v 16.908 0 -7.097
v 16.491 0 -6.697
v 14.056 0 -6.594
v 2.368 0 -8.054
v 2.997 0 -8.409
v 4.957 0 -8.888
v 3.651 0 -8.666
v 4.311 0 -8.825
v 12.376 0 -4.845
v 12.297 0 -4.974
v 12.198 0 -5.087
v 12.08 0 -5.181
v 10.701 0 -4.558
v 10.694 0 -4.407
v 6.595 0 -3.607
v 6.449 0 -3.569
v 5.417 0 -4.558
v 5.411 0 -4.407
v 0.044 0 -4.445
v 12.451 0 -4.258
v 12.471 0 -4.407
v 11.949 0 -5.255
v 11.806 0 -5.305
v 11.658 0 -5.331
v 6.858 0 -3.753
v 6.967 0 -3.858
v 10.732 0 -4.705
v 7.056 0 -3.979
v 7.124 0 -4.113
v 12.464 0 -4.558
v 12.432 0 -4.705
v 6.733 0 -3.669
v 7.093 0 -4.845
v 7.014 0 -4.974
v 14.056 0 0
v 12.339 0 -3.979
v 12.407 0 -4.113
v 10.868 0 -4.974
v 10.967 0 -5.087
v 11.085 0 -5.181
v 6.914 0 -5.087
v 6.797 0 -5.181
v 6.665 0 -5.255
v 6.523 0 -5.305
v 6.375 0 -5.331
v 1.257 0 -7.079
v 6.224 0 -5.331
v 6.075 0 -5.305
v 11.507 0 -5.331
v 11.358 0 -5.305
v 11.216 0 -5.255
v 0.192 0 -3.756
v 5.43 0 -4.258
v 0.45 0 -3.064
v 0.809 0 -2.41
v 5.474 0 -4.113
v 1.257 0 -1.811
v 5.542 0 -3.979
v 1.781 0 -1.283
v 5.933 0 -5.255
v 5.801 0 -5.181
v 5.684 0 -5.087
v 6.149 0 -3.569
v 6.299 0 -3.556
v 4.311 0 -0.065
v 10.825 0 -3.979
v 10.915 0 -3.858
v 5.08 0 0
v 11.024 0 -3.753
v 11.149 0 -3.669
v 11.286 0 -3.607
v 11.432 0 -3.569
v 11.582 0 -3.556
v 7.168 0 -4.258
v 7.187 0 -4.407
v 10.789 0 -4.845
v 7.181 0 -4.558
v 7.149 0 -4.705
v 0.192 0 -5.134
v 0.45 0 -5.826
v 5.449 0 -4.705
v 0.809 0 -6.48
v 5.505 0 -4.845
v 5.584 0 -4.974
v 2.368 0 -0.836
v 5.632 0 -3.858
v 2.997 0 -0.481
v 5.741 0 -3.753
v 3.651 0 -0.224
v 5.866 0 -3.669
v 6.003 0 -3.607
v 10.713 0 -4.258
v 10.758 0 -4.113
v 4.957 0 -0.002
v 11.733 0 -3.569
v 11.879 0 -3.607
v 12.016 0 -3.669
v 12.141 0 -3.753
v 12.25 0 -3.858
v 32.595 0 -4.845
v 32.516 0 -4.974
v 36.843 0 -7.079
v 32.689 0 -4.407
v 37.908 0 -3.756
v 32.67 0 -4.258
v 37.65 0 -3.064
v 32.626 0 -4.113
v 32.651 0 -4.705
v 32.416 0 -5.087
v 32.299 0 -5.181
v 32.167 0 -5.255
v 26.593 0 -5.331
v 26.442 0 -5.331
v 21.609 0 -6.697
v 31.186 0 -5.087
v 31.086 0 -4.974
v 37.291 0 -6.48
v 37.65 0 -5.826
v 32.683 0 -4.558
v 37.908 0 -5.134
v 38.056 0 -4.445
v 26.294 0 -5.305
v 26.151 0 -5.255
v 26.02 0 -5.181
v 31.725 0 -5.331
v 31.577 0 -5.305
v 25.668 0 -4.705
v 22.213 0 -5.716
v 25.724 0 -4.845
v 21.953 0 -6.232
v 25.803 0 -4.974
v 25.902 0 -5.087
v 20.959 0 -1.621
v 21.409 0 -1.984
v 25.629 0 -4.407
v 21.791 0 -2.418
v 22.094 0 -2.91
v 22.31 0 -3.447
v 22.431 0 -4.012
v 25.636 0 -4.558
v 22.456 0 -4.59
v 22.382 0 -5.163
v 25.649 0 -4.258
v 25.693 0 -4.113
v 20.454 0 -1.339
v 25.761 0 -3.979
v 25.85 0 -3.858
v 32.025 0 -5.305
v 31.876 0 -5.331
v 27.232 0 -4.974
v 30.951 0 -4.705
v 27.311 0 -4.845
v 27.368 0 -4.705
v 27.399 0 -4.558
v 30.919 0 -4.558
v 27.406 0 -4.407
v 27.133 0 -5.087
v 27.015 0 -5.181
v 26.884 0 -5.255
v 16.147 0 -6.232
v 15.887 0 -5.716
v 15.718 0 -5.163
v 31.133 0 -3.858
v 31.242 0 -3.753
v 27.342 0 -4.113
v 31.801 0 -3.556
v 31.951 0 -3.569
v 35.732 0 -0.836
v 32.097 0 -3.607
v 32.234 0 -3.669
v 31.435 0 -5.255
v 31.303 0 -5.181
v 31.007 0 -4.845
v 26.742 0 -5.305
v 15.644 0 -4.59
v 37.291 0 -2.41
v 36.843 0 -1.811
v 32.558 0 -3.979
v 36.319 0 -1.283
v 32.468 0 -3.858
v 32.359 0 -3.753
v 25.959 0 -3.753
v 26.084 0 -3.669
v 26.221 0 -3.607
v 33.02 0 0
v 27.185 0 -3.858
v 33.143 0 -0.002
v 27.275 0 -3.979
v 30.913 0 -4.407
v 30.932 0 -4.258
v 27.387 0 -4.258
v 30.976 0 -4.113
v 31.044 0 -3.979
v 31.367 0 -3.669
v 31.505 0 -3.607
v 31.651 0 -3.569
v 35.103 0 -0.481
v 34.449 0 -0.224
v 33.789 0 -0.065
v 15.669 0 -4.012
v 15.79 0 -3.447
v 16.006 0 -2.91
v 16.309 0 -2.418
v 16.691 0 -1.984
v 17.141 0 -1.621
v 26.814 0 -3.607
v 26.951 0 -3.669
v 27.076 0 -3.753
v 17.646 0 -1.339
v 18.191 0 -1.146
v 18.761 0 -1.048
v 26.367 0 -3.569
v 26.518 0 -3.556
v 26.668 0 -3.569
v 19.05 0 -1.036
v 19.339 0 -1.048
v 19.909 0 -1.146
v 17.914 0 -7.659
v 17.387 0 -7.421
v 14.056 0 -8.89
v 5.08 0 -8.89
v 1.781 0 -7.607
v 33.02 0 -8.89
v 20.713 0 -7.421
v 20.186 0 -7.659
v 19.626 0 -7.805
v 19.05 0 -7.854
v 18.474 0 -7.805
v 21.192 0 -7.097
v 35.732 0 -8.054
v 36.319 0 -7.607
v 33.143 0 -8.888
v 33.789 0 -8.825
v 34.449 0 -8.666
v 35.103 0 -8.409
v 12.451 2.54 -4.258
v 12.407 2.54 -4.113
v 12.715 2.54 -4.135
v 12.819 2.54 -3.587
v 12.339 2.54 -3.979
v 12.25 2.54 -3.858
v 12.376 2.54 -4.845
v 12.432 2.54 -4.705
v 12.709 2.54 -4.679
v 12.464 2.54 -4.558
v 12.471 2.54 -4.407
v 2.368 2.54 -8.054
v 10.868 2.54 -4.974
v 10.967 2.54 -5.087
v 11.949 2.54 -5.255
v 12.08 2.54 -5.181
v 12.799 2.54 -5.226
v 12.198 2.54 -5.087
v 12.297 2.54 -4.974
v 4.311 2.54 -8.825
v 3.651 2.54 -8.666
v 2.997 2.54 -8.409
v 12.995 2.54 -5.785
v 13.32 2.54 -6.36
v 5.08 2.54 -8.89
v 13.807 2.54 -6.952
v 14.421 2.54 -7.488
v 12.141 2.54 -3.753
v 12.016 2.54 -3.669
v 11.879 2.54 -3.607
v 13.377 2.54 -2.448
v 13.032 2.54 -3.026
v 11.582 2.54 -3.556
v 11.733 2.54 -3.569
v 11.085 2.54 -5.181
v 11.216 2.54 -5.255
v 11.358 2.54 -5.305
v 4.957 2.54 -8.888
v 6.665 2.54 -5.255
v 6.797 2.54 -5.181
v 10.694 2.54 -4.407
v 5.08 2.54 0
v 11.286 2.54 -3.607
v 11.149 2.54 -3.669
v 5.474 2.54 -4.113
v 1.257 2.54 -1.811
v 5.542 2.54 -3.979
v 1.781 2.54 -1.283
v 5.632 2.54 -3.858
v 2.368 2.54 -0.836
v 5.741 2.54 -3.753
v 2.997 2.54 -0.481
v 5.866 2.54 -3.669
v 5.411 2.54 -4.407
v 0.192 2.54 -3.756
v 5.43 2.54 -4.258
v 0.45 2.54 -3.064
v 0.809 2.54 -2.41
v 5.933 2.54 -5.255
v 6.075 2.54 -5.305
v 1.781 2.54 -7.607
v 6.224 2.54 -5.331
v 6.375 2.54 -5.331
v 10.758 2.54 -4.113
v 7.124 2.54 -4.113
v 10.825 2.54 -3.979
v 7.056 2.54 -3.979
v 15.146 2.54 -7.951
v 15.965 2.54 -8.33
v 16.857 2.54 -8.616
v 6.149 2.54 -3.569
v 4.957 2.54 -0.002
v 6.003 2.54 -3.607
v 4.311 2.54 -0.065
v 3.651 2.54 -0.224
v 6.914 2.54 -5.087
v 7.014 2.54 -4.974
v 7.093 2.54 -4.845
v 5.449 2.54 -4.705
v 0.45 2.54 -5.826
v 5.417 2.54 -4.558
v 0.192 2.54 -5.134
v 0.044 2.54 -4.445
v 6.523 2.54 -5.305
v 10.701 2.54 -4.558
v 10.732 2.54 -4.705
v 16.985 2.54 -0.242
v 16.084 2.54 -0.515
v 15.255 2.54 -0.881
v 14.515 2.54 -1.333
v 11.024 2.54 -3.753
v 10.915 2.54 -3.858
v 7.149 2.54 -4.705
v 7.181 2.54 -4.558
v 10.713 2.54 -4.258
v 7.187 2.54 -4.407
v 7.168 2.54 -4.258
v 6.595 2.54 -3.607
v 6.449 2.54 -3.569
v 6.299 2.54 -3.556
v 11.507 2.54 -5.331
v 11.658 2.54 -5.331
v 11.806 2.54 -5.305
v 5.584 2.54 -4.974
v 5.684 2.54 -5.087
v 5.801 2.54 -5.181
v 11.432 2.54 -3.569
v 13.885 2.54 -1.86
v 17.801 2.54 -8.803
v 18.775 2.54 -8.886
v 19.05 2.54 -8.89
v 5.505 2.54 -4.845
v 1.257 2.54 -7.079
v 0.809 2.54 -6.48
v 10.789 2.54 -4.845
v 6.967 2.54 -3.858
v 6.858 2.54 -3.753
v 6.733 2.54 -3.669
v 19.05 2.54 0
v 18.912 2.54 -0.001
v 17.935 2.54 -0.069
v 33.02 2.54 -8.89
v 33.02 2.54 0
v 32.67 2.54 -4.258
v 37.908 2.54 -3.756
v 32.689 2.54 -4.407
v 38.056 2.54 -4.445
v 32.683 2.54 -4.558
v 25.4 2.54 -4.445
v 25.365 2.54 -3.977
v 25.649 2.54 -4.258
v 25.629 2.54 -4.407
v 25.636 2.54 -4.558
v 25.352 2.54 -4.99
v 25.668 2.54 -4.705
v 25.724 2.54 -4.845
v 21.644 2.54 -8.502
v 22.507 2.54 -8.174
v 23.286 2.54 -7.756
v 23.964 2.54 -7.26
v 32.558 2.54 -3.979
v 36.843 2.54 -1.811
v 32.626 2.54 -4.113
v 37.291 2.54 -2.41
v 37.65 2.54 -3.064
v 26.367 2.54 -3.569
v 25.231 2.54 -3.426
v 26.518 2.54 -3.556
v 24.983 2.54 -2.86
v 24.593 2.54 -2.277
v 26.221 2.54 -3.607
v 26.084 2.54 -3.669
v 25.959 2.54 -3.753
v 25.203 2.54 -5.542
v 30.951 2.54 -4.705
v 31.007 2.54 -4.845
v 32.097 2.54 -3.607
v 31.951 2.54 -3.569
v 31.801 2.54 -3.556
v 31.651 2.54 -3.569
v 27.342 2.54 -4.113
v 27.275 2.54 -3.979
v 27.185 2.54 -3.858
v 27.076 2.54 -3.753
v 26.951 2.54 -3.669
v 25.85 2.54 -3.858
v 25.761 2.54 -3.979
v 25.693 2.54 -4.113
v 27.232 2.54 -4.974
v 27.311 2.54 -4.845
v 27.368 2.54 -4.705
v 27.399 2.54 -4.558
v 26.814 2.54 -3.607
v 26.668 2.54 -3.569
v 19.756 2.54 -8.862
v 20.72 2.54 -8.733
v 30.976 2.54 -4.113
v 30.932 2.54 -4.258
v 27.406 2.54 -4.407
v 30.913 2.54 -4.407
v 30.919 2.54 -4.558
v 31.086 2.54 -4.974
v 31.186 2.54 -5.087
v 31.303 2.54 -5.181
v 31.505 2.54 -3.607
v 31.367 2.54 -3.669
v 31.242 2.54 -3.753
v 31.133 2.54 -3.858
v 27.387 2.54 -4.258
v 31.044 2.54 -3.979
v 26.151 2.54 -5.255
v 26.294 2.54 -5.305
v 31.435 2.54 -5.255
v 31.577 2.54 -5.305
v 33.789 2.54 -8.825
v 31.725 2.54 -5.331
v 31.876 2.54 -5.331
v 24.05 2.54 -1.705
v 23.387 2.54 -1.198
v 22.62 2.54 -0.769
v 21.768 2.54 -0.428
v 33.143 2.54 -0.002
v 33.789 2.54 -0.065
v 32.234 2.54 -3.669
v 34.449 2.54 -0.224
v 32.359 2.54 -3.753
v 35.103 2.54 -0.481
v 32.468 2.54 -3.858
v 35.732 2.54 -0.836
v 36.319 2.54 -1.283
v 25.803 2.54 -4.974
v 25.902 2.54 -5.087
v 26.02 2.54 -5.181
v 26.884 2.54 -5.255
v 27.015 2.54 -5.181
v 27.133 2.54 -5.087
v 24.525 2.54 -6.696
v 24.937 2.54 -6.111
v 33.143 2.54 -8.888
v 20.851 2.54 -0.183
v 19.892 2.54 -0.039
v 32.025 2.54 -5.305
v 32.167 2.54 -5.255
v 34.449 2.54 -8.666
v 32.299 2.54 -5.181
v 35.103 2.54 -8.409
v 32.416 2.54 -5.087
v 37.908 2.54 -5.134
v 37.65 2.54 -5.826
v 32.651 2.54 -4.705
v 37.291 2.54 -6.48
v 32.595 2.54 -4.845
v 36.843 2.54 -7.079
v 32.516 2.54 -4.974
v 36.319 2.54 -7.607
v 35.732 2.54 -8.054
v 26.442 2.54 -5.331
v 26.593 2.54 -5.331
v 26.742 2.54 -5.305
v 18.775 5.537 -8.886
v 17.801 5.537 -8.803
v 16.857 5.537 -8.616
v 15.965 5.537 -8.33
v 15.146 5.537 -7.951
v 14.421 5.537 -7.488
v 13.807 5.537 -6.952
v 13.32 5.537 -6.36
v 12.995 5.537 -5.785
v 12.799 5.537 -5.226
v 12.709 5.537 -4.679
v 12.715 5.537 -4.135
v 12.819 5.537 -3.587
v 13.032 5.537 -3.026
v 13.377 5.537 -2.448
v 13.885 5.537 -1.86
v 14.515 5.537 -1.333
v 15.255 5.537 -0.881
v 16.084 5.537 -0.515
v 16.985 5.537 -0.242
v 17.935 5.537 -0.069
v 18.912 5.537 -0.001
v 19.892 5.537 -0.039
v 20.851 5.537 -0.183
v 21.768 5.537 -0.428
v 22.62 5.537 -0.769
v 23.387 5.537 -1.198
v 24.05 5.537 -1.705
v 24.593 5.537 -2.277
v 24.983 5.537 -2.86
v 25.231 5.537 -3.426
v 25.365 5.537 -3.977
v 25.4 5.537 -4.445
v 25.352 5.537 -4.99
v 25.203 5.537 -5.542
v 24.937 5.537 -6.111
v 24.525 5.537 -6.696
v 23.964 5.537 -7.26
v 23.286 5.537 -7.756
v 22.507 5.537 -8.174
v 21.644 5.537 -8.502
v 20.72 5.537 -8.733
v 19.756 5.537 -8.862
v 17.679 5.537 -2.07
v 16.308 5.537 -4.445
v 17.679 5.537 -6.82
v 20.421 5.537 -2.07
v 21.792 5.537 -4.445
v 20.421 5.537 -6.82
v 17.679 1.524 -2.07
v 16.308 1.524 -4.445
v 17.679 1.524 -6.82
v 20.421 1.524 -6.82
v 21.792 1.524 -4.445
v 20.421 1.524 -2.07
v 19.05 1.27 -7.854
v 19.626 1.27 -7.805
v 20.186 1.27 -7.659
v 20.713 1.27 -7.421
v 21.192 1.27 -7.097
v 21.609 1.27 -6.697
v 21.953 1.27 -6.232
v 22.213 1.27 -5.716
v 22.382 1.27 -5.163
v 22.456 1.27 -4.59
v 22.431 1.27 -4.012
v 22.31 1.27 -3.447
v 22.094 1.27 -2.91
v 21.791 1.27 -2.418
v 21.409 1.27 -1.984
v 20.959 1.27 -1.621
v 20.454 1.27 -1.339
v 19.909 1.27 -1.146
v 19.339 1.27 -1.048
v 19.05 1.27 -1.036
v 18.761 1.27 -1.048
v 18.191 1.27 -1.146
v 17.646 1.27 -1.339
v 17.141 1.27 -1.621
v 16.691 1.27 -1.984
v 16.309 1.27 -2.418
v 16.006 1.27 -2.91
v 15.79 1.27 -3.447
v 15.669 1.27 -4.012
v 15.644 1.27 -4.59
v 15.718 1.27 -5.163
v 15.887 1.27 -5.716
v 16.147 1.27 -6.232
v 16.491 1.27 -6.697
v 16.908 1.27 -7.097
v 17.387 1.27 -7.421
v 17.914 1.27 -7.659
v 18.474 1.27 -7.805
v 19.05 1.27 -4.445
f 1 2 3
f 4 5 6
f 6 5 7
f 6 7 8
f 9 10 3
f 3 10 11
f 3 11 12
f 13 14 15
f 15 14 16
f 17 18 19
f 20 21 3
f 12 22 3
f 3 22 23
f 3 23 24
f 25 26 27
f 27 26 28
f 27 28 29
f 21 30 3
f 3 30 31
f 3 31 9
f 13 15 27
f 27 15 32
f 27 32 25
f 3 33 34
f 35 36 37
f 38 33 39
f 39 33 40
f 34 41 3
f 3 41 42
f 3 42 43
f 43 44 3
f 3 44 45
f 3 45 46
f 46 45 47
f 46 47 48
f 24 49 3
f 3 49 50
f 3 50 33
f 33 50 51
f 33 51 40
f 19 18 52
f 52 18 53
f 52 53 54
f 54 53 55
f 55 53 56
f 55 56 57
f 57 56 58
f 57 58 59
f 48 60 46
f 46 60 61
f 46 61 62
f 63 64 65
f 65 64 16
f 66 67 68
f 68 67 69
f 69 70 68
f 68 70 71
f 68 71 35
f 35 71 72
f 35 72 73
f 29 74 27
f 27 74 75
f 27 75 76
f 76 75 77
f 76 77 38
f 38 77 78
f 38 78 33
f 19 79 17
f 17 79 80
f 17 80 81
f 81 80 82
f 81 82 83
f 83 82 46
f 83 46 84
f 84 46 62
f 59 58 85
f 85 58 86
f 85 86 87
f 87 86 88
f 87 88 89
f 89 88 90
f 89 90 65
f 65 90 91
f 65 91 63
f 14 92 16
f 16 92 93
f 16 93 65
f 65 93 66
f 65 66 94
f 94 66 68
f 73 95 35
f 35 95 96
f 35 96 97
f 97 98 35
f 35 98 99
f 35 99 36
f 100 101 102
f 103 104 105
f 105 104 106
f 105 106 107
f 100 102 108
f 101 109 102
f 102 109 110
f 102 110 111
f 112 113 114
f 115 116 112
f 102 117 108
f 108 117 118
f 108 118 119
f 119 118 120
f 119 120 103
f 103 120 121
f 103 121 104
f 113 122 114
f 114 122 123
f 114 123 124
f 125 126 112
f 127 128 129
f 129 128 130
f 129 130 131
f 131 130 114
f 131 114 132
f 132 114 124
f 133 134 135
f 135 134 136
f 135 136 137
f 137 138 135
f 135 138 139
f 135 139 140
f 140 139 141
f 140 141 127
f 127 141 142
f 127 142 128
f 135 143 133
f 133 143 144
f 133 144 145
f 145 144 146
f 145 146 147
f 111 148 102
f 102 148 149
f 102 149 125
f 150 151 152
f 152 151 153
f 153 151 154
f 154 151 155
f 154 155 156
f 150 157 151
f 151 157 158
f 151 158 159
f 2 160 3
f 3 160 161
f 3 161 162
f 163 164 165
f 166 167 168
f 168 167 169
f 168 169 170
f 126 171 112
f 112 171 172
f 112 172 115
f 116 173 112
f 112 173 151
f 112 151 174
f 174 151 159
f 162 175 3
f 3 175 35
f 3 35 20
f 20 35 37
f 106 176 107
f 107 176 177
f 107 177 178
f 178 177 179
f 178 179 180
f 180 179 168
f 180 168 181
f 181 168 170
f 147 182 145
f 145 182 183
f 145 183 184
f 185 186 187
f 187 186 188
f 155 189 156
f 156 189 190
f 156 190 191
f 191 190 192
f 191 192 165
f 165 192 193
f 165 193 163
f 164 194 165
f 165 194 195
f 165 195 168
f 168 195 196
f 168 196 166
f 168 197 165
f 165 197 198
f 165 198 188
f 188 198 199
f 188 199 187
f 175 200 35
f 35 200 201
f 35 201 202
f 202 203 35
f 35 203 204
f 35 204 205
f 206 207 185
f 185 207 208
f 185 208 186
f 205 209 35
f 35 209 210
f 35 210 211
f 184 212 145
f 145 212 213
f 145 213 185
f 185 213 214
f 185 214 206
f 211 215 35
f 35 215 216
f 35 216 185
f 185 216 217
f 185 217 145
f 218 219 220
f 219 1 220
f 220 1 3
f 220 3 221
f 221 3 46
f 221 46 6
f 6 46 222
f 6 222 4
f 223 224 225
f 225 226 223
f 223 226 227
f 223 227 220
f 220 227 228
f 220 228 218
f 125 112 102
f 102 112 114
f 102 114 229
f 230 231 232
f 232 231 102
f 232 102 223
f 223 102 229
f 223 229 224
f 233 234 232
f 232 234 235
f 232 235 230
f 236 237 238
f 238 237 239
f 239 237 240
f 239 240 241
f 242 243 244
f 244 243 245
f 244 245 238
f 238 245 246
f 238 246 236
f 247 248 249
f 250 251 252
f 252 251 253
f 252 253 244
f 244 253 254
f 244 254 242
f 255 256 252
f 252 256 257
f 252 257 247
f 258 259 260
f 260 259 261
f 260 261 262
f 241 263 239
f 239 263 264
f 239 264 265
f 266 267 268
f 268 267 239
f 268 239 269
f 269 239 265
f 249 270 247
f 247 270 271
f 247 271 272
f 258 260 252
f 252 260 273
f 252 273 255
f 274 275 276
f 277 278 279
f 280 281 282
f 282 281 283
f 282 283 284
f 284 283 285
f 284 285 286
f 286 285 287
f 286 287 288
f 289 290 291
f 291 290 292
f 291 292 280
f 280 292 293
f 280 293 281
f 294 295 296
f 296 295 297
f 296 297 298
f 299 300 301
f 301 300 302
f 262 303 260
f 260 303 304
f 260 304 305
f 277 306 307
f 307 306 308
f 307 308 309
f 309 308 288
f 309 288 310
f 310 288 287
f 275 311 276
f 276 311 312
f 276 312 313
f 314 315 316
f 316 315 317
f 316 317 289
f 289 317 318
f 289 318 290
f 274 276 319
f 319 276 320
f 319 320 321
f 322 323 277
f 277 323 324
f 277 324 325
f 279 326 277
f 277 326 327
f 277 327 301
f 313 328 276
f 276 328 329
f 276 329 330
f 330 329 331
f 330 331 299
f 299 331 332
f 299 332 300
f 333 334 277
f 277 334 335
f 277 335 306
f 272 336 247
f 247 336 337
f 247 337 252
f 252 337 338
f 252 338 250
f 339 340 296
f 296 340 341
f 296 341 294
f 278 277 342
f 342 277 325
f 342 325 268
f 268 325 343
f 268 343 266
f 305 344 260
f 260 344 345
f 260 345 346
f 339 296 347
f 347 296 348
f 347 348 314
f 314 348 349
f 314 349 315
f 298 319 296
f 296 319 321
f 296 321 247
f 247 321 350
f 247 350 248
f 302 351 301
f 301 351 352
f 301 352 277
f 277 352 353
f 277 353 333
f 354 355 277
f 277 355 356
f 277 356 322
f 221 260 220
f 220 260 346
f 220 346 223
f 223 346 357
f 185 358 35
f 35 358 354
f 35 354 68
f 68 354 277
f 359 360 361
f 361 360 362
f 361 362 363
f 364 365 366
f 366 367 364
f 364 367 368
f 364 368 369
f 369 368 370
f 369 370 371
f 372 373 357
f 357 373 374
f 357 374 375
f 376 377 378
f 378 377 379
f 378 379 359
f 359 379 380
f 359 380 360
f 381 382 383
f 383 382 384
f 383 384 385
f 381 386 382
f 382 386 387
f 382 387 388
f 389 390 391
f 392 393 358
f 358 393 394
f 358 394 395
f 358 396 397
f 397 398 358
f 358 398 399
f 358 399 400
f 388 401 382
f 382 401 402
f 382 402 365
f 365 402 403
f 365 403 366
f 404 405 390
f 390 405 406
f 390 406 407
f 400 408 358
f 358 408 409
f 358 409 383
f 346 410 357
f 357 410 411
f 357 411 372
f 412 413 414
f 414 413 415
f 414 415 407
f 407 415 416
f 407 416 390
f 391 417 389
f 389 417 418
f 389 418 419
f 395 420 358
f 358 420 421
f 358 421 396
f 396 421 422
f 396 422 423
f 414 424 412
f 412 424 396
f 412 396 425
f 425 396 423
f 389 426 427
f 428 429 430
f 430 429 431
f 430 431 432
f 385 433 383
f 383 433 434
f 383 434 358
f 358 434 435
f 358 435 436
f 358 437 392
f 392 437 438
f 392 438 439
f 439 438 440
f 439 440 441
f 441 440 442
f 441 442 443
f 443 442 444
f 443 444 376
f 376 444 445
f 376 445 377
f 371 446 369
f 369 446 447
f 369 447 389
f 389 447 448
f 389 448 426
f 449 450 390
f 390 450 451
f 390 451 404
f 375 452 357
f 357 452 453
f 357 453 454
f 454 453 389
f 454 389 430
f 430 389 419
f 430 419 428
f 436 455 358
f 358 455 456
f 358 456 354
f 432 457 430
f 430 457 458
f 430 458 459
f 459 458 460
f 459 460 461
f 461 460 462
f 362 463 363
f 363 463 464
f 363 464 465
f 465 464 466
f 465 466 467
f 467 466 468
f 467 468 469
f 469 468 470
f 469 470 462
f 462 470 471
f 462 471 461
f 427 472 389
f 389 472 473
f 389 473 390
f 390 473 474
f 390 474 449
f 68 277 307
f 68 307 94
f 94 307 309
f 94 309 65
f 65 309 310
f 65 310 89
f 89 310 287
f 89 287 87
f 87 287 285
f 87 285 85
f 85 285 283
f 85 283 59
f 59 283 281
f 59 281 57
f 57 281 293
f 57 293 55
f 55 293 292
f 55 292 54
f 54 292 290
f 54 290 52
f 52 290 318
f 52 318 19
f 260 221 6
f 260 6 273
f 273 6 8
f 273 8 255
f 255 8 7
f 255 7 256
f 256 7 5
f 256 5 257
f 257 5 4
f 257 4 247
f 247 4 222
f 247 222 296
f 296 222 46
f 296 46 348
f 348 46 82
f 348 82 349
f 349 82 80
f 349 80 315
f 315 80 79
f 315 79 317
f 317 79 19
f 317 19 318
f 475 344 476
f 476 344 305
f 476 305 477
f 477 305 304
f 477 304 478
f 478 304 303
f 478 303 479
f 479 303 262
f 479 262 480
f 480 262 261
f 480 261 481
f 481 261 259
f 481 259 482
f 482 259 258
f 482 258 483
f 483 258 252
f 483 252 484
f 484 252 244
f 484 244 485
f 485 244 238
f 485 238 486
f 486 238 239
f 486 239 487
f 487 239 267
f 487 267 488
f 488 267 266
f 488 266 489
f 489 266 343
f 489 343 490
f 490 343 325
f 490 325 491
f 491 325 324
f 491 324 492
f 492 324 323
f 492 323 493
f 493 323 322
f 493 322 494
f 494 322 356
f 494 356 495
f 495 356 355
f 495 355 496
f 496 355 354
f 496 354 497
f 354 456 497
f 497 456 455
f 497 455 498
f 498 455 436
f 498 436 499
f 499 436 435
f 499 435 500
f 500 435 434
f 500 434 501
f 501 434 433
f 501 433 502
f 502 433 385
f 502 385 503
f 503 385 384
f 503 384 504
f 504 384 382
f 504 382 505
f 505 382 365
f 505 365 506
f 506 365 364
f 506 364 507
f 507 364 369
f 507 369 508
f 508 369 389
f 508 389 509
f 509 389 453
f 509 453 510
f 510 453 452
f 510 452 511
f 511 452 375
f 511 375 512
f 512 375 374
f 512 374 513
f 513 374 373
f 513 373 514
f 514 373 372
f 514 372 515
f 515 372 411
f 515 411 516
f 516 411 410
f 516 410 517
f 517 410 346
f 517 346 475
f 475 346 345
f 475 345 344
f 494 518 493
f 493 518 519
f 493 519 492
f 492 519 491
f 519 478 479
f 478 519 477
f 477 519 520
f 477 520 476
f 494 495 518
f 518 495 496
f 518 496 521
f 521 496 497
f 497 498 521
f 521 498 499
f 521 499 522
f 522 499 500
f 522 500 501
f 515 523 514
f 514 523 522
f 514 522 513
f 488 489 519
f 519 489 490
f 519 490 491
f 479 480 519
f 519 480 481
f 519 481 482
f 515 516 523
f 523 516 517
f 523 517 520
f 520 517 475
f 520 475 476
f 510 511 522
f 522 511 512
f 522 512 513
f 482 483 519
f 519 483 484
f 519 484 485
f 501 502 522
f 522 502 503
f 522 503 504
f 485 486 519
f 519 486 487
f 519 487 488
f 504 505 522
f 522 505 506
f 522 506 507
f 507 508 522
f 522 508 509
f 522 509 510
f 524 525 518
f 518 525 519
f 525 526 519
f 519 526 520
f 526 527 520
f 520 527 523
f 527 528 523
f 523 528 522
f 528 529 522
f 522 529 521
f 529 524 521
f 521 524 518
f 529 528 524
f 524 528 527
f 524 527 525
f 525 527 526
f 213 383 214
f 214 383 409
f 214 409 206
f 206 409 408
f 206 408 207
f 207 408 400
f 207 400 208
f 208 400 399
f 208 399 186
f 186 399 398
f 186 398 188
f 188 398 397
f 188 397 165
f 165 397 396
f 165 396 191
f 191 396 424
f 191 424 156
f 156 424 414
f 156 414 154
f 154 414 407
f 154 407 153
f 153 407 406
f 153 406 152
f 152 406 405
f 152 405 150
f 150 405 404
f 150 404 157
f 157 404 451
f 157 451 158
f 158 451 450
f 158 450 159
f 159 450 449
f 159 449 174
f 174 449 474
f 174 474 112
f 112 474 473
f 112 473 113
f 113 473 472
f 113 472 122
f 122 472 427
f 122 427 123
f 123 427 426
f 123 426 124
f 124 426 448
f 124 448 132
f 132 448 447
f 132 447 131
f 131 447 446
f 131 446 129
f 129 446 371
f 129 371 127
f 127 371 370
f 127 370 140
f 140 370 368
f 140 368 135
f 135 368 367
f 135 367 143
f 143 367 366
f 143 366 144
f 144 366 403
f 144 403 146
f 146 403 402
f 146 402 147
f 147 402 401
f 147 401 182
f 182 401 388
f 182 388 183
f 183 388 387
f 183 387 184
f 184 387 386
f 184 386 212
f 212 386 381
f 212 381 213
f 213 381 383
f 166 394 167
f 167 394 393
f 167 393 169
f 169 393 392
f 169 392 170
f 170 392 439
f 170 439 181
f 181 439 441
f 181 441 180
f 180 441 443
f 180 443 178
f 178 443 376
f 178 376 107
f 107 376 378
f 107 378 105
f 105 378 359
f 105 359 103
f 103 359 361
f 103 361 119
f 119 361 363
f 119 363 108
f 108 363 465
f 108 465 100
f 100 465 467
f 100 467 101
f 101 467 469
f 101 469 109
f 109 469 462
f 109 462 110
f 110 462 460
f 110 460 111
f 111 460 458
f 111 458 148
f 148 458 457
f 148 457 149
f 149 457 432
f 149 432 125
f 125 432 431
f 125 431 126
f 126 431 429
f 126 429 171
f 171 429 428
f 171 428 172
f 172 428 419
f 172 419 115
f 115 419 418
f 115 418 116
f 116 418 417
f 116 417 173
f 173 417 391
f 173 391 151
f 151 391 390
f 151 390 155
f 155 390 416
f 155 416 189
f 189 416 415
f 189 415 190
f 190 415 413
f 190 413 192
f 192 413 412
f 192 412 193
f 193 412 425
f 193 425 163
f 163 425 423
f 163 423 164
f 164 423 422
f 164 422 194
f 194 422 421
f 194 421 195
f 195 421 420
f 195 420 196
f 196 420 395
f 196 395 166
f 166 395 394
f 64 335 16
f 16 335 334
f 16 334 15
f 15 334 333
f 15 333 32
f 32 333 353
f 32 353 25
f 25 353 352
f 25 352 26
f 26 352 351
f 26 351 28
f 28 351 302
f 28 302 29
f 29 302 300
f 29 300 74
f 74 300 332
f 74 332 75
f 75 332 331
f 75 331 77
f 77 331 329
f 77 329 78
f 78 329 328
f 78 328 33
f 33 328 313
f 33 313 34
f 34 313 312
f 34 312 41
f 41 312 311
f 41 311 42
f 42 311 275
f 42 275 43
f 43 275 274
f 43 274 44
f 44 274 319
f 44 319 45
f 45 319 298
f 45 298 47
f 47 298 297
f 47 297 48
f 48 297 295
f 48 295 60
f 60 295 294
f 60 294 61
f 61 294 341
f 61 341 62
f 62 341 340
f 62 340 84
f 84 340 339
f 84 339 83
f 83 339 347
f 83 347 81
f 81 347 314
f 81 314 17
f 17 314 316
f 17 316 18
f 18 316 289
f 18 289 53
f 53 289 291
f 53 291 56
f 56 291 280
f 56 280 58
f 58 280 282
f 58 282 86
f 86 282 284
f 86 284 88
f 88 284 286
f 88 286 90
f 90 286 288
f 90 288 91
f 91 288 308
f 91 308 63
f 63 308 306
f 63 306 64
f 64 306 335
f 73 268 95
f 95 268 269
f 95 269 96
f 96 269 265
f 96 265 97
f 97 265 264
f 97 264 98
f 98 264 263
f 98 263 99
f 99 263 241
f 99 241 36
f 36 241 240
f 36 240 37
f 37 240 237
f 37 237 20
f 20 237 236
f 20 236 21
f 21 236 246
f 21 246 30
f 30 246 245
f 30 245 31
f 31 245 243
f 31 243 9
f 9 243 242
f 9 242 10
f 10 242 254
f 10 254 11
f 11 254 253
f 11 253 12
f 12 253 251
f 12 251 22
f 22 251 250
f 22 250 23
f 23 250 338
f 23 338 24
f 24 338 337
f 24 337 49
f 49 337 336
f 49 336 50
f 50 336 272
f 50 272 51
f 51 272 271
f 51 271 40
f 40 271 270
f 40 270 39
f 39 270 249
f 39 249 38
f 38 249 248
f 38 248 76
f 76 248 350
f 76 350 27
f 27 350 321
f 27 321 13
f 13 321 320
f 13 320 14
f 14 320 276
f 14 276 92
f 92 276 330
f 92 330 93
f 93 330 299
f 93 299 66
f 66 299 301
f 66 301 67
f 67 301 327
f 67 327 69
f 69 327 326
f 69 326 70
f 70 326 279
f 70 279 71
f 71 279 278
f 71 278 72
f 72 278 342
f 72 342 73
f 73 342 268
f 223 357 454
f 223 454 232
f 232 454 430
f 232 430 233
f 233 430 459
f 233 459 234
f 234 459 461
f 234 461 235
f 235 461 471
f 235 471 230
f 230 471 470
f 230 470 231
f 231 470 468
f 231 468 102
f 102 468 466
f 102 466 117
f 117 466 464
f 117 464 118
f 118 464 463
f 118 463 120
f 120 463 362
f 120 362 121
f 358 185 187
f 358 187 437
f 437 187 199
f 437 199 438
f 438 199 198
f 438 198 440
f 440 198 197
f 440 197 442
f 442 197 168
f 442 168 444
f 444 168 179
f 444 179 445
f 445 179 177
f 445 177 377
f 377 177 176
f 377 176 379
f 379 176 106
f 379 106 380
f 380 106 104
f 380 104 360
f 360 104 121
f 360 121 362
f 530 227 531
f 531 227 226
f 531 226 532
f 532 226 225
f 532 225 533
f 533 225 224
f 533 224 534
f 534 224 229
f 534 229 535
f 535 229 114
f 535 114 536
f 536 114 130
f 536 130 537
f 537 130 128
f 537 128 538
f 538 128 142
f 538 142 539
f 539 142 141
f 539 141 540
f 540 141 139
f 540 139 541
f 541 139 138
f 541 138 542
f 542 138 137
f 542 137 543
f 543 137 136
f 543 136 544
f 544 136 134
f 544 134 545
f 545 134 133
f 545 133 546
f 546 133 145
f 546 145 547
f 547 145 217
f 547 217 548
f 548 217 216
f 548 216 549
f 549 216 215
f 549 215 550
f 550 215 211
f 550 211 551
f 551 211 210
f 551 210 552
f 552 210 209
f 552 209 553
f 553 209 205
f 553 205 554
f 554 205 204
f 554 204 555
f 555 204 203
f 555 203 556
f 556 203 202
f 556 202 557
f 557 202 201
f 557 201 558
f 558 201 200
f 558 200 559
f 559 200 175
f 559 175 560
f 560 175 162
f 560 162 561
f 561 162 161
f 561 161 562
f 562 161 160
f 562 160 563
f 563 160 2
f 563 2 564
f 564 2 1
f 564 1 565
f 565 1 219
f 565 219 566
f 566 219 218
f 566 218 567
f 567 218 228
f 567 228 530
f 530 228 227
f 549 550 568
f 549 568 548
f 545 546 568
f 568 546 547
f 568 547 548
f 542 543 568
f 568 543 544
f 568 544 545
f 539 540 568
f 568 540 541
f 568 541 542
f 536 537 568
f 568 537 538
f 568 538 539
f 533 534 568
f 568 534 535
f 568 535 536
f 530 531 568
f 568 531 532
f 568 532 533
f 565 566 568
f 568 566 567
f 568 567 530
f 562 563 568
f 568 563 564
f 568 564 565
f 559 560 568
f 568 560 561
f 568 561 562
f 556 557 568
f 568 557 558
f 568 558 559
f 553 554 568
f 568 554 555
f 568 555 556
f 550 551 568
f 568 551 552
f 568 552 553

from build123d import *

# Parameters (mm, degrees)
SKETCH1_W               = 38.1
SKETCH1_H               = 8.89
BOSS_EXTRUDE1_DEPTH     = 2.54
FILLET1_SIZE            = 5.08
BOSS_EXTRUDE2_START     = 0.508
SKETCH1_7_RX            = 6.35
SKETCH1_7_RY            = 4.445
BOSS_EXTRUDE2_DEPTH     = 5.0292
CUT_EXTRUDE2_DEPTH      = 40.51332301
CUT_EXTRUDE2_DEPTH_BACK = 5.08
CUT_EXTRUDE2_START      = 6.604
CUT_EXTRUDE3_START      = 1.778
SKETCH2_R               = 0.889
CUT_EXTRUDE3_DEPTH      = 5.08
FILLET2_SIZE            = 5.08
SKETCH6_R               = 3.408948418
CUT_EXTRUDE6_DEPTH      = 1.27
SKETCH2_AGAIN_R         = 0.889
CUT_EXTRUDE5_DEPTH      = 1.2


with BuildPart() as part:
    # Sketch1 → Boss-Extrude1 (new body)
    with BuildSketch(Plane(origin=(0, 0, 0), x_dir=(1, 0, 0), z_dir=(0, 1, 0))):
        with Locations((19.05, 4.445)):
            Rectangle(SKETCH1_W, SKETCH1_H)
        Polygon((20.421149154, 2.0701), (21.792298309, 4.445), (20.421149154, 6.8199), (17.678850846, 6.8199), (16.307701691, 4.445), (17.678850846, 2.0701), align=None, mode=Mode.SUBTRACT)
    extrude(amount=BOSS_EXTRUDE1_DEPTH)

    # Fillet1
    # a fillet whose section is not a circle: 5.08 mm, written as the material it takes off along each edge
    with BuildSketch(Plane(origin=(0, -12.7, -8.89), x_dir=(1, 0, 0), z_dir=(0, 1, 0))) as fillet1_piece_1:
        with BuildLine():
            Bezier((FILLET1_SIZE, 0), (0, 0), (0, -FILLET1_SIZE), weights=[1, 0.666666667, 1])
            Line((0, -FILLET1_SIZE), (0, 0))
            Line((0, 0), (FILLET1_SIZE, 0))
        make_face()
    extrude(amount=27.94, mode=Mode.SUBTRACT)
    with BuildSketch(Plane(origin=(0, -12.7, 0), x_dir=(1, 0, 0), z_dir=(0, 1, 0))) as fillet1_piece_2:
        with BuildLine():
            Bezier((FILLET1_SIZE, 0), (0, 0), (0, FILLET1_SIZE), weights=[1, 0.666666667, 1])
            Line((0, FILLET1_SIZE), (0, 0))
            Line((0, 0), (FILLET1_SIZE, 0))
        make_face()
    extrude(amount=27.94, mode=Mode.SUBTRACT)

    # Sketch1<7> → Boss-Extrude2 (add)
    with BuildSketch(Plane(origin=(0, 0, 0), x_dir=(1, 0, 0), z_dir=(0, 1, 0)).offset(BOSS_EXTRUDE2_START)):
        with Locations(Location((19.05, 4.445), (0, 0, 0))):
            Ellipse(SKETCH1_7_RX, SKETCH1_7_RY)
    extrude(amount=BOSS_EXTRUDE2_DEPTH)

    # Sketch1<8> → Cut-Extrude2 (cut, two sides: drawn at the far end of the back side and taken through both)
    with BuildSketch(Plane(origin=(0, 0, 0), x_dir=(1, 0, 0), z_dir=(0, 1, 0)).offset(CUT_EXTRUDE2_START - CUT_EXTRUDE2_DEPTH_BACK)):
        Polygon((20.421149154, 2.0701), (21.792298309, 4.445), (20.421149154, 6.8199), (17.678850846, 6.8199), (16.307701691, 4.445), (17.678850846, 2.0701), align=None)
    extrude(amount=CUT_EXTRUDE2_DEPTH + CUT_EXTRUDE2_DEPTH_BACK, mode=Mode.SUBTRACT)

    # Sketch2 → Cut-Extrude3 (cut)
    with BuildSketch(Plane(origin=(0, 2.54, 0), x_dir=(1, 0, 0), z_dir=(0, 1, 0)).offset(CUT_EXTRUDE3_START)):
        with Locations(Location((11.5824, 4.444938661, 0), (0, 0, 270))):
            Circle(SKETCH2_R)
        with Locations(Location((6.2992, 4.444938661, 0), (0, 0, 270))):
            Circle(SKETCH2_R)
        with Locations(Location((26.5176, 4.444938661, 0), (0, 0, 270))):
            Circle(SKETCH2_R)
        with Locations(Location((31.8008, 4.444938661, 0), (0, 0, 270))):
            Circle(SKETCH2_R)
    extrude(amount=-CUT_EXTRUDE3_DEPTH, mode=Mode.SUBTRACT)

    # Fillet2
    # a fillet whose section is not a circle: 5.08 mm, written as the material it takes off along each edge
    with BuildSketch(Plane(origin=(38.1, -12.7, 0), x_dir=(-1, 0, 0), z_dir=(0, 1, 0)), Plane(origin=(38.1, -12.7, -8.89), x_dir=(0, 0, 1), z_dir=(0, 1, 0))) as fillet2_piece_1:
        with BuildLine():
            Bezier((FILLET2_SIZE, 0), (0, 0), (0, -FILLET2_SIZE), weights=[1, 0.666666667, 1])
            Line((0, -FILLET2_SIZE), (0, 0))
            Line((0, 0), (FILLET2_SIZE, 0))
        make_face()
    extrude(amount=27.94, mode=Mode.SUBTRACT)

    # Sketch6 → Cut-Extrude6 (cut)
    with BuildSketch(Plane(origin=(0, 0, 0), x_dir=(1, 0, 0), z_dir=(0, 1, 0))):
        with Locations(Location((19.05, 4.445, 0), (0, 0, 270))):
            Circle(SKETCH6_R)
    extrude(amount=CUT_EXTRUDE6_DEPTH, mode=Mode.SUBTRACT)

    # Sketch2 again → Cut-Extrude5 (cut)
    with BuildSketch(Plane(origin=(0, 2.54, 0), x_dir=(1, 0, 0), z_dir=(0, 1, 0))):
        with Locations(Location((26.5176, 4.444938661, 0), (0, 0, 270))):
            Circle(SKETCH2_AGAIN_R)
    extrude(amount=-CUT_EXTRUDE5_DEPTH, mode=Mode.SUBTRACT)


solid = part.part
